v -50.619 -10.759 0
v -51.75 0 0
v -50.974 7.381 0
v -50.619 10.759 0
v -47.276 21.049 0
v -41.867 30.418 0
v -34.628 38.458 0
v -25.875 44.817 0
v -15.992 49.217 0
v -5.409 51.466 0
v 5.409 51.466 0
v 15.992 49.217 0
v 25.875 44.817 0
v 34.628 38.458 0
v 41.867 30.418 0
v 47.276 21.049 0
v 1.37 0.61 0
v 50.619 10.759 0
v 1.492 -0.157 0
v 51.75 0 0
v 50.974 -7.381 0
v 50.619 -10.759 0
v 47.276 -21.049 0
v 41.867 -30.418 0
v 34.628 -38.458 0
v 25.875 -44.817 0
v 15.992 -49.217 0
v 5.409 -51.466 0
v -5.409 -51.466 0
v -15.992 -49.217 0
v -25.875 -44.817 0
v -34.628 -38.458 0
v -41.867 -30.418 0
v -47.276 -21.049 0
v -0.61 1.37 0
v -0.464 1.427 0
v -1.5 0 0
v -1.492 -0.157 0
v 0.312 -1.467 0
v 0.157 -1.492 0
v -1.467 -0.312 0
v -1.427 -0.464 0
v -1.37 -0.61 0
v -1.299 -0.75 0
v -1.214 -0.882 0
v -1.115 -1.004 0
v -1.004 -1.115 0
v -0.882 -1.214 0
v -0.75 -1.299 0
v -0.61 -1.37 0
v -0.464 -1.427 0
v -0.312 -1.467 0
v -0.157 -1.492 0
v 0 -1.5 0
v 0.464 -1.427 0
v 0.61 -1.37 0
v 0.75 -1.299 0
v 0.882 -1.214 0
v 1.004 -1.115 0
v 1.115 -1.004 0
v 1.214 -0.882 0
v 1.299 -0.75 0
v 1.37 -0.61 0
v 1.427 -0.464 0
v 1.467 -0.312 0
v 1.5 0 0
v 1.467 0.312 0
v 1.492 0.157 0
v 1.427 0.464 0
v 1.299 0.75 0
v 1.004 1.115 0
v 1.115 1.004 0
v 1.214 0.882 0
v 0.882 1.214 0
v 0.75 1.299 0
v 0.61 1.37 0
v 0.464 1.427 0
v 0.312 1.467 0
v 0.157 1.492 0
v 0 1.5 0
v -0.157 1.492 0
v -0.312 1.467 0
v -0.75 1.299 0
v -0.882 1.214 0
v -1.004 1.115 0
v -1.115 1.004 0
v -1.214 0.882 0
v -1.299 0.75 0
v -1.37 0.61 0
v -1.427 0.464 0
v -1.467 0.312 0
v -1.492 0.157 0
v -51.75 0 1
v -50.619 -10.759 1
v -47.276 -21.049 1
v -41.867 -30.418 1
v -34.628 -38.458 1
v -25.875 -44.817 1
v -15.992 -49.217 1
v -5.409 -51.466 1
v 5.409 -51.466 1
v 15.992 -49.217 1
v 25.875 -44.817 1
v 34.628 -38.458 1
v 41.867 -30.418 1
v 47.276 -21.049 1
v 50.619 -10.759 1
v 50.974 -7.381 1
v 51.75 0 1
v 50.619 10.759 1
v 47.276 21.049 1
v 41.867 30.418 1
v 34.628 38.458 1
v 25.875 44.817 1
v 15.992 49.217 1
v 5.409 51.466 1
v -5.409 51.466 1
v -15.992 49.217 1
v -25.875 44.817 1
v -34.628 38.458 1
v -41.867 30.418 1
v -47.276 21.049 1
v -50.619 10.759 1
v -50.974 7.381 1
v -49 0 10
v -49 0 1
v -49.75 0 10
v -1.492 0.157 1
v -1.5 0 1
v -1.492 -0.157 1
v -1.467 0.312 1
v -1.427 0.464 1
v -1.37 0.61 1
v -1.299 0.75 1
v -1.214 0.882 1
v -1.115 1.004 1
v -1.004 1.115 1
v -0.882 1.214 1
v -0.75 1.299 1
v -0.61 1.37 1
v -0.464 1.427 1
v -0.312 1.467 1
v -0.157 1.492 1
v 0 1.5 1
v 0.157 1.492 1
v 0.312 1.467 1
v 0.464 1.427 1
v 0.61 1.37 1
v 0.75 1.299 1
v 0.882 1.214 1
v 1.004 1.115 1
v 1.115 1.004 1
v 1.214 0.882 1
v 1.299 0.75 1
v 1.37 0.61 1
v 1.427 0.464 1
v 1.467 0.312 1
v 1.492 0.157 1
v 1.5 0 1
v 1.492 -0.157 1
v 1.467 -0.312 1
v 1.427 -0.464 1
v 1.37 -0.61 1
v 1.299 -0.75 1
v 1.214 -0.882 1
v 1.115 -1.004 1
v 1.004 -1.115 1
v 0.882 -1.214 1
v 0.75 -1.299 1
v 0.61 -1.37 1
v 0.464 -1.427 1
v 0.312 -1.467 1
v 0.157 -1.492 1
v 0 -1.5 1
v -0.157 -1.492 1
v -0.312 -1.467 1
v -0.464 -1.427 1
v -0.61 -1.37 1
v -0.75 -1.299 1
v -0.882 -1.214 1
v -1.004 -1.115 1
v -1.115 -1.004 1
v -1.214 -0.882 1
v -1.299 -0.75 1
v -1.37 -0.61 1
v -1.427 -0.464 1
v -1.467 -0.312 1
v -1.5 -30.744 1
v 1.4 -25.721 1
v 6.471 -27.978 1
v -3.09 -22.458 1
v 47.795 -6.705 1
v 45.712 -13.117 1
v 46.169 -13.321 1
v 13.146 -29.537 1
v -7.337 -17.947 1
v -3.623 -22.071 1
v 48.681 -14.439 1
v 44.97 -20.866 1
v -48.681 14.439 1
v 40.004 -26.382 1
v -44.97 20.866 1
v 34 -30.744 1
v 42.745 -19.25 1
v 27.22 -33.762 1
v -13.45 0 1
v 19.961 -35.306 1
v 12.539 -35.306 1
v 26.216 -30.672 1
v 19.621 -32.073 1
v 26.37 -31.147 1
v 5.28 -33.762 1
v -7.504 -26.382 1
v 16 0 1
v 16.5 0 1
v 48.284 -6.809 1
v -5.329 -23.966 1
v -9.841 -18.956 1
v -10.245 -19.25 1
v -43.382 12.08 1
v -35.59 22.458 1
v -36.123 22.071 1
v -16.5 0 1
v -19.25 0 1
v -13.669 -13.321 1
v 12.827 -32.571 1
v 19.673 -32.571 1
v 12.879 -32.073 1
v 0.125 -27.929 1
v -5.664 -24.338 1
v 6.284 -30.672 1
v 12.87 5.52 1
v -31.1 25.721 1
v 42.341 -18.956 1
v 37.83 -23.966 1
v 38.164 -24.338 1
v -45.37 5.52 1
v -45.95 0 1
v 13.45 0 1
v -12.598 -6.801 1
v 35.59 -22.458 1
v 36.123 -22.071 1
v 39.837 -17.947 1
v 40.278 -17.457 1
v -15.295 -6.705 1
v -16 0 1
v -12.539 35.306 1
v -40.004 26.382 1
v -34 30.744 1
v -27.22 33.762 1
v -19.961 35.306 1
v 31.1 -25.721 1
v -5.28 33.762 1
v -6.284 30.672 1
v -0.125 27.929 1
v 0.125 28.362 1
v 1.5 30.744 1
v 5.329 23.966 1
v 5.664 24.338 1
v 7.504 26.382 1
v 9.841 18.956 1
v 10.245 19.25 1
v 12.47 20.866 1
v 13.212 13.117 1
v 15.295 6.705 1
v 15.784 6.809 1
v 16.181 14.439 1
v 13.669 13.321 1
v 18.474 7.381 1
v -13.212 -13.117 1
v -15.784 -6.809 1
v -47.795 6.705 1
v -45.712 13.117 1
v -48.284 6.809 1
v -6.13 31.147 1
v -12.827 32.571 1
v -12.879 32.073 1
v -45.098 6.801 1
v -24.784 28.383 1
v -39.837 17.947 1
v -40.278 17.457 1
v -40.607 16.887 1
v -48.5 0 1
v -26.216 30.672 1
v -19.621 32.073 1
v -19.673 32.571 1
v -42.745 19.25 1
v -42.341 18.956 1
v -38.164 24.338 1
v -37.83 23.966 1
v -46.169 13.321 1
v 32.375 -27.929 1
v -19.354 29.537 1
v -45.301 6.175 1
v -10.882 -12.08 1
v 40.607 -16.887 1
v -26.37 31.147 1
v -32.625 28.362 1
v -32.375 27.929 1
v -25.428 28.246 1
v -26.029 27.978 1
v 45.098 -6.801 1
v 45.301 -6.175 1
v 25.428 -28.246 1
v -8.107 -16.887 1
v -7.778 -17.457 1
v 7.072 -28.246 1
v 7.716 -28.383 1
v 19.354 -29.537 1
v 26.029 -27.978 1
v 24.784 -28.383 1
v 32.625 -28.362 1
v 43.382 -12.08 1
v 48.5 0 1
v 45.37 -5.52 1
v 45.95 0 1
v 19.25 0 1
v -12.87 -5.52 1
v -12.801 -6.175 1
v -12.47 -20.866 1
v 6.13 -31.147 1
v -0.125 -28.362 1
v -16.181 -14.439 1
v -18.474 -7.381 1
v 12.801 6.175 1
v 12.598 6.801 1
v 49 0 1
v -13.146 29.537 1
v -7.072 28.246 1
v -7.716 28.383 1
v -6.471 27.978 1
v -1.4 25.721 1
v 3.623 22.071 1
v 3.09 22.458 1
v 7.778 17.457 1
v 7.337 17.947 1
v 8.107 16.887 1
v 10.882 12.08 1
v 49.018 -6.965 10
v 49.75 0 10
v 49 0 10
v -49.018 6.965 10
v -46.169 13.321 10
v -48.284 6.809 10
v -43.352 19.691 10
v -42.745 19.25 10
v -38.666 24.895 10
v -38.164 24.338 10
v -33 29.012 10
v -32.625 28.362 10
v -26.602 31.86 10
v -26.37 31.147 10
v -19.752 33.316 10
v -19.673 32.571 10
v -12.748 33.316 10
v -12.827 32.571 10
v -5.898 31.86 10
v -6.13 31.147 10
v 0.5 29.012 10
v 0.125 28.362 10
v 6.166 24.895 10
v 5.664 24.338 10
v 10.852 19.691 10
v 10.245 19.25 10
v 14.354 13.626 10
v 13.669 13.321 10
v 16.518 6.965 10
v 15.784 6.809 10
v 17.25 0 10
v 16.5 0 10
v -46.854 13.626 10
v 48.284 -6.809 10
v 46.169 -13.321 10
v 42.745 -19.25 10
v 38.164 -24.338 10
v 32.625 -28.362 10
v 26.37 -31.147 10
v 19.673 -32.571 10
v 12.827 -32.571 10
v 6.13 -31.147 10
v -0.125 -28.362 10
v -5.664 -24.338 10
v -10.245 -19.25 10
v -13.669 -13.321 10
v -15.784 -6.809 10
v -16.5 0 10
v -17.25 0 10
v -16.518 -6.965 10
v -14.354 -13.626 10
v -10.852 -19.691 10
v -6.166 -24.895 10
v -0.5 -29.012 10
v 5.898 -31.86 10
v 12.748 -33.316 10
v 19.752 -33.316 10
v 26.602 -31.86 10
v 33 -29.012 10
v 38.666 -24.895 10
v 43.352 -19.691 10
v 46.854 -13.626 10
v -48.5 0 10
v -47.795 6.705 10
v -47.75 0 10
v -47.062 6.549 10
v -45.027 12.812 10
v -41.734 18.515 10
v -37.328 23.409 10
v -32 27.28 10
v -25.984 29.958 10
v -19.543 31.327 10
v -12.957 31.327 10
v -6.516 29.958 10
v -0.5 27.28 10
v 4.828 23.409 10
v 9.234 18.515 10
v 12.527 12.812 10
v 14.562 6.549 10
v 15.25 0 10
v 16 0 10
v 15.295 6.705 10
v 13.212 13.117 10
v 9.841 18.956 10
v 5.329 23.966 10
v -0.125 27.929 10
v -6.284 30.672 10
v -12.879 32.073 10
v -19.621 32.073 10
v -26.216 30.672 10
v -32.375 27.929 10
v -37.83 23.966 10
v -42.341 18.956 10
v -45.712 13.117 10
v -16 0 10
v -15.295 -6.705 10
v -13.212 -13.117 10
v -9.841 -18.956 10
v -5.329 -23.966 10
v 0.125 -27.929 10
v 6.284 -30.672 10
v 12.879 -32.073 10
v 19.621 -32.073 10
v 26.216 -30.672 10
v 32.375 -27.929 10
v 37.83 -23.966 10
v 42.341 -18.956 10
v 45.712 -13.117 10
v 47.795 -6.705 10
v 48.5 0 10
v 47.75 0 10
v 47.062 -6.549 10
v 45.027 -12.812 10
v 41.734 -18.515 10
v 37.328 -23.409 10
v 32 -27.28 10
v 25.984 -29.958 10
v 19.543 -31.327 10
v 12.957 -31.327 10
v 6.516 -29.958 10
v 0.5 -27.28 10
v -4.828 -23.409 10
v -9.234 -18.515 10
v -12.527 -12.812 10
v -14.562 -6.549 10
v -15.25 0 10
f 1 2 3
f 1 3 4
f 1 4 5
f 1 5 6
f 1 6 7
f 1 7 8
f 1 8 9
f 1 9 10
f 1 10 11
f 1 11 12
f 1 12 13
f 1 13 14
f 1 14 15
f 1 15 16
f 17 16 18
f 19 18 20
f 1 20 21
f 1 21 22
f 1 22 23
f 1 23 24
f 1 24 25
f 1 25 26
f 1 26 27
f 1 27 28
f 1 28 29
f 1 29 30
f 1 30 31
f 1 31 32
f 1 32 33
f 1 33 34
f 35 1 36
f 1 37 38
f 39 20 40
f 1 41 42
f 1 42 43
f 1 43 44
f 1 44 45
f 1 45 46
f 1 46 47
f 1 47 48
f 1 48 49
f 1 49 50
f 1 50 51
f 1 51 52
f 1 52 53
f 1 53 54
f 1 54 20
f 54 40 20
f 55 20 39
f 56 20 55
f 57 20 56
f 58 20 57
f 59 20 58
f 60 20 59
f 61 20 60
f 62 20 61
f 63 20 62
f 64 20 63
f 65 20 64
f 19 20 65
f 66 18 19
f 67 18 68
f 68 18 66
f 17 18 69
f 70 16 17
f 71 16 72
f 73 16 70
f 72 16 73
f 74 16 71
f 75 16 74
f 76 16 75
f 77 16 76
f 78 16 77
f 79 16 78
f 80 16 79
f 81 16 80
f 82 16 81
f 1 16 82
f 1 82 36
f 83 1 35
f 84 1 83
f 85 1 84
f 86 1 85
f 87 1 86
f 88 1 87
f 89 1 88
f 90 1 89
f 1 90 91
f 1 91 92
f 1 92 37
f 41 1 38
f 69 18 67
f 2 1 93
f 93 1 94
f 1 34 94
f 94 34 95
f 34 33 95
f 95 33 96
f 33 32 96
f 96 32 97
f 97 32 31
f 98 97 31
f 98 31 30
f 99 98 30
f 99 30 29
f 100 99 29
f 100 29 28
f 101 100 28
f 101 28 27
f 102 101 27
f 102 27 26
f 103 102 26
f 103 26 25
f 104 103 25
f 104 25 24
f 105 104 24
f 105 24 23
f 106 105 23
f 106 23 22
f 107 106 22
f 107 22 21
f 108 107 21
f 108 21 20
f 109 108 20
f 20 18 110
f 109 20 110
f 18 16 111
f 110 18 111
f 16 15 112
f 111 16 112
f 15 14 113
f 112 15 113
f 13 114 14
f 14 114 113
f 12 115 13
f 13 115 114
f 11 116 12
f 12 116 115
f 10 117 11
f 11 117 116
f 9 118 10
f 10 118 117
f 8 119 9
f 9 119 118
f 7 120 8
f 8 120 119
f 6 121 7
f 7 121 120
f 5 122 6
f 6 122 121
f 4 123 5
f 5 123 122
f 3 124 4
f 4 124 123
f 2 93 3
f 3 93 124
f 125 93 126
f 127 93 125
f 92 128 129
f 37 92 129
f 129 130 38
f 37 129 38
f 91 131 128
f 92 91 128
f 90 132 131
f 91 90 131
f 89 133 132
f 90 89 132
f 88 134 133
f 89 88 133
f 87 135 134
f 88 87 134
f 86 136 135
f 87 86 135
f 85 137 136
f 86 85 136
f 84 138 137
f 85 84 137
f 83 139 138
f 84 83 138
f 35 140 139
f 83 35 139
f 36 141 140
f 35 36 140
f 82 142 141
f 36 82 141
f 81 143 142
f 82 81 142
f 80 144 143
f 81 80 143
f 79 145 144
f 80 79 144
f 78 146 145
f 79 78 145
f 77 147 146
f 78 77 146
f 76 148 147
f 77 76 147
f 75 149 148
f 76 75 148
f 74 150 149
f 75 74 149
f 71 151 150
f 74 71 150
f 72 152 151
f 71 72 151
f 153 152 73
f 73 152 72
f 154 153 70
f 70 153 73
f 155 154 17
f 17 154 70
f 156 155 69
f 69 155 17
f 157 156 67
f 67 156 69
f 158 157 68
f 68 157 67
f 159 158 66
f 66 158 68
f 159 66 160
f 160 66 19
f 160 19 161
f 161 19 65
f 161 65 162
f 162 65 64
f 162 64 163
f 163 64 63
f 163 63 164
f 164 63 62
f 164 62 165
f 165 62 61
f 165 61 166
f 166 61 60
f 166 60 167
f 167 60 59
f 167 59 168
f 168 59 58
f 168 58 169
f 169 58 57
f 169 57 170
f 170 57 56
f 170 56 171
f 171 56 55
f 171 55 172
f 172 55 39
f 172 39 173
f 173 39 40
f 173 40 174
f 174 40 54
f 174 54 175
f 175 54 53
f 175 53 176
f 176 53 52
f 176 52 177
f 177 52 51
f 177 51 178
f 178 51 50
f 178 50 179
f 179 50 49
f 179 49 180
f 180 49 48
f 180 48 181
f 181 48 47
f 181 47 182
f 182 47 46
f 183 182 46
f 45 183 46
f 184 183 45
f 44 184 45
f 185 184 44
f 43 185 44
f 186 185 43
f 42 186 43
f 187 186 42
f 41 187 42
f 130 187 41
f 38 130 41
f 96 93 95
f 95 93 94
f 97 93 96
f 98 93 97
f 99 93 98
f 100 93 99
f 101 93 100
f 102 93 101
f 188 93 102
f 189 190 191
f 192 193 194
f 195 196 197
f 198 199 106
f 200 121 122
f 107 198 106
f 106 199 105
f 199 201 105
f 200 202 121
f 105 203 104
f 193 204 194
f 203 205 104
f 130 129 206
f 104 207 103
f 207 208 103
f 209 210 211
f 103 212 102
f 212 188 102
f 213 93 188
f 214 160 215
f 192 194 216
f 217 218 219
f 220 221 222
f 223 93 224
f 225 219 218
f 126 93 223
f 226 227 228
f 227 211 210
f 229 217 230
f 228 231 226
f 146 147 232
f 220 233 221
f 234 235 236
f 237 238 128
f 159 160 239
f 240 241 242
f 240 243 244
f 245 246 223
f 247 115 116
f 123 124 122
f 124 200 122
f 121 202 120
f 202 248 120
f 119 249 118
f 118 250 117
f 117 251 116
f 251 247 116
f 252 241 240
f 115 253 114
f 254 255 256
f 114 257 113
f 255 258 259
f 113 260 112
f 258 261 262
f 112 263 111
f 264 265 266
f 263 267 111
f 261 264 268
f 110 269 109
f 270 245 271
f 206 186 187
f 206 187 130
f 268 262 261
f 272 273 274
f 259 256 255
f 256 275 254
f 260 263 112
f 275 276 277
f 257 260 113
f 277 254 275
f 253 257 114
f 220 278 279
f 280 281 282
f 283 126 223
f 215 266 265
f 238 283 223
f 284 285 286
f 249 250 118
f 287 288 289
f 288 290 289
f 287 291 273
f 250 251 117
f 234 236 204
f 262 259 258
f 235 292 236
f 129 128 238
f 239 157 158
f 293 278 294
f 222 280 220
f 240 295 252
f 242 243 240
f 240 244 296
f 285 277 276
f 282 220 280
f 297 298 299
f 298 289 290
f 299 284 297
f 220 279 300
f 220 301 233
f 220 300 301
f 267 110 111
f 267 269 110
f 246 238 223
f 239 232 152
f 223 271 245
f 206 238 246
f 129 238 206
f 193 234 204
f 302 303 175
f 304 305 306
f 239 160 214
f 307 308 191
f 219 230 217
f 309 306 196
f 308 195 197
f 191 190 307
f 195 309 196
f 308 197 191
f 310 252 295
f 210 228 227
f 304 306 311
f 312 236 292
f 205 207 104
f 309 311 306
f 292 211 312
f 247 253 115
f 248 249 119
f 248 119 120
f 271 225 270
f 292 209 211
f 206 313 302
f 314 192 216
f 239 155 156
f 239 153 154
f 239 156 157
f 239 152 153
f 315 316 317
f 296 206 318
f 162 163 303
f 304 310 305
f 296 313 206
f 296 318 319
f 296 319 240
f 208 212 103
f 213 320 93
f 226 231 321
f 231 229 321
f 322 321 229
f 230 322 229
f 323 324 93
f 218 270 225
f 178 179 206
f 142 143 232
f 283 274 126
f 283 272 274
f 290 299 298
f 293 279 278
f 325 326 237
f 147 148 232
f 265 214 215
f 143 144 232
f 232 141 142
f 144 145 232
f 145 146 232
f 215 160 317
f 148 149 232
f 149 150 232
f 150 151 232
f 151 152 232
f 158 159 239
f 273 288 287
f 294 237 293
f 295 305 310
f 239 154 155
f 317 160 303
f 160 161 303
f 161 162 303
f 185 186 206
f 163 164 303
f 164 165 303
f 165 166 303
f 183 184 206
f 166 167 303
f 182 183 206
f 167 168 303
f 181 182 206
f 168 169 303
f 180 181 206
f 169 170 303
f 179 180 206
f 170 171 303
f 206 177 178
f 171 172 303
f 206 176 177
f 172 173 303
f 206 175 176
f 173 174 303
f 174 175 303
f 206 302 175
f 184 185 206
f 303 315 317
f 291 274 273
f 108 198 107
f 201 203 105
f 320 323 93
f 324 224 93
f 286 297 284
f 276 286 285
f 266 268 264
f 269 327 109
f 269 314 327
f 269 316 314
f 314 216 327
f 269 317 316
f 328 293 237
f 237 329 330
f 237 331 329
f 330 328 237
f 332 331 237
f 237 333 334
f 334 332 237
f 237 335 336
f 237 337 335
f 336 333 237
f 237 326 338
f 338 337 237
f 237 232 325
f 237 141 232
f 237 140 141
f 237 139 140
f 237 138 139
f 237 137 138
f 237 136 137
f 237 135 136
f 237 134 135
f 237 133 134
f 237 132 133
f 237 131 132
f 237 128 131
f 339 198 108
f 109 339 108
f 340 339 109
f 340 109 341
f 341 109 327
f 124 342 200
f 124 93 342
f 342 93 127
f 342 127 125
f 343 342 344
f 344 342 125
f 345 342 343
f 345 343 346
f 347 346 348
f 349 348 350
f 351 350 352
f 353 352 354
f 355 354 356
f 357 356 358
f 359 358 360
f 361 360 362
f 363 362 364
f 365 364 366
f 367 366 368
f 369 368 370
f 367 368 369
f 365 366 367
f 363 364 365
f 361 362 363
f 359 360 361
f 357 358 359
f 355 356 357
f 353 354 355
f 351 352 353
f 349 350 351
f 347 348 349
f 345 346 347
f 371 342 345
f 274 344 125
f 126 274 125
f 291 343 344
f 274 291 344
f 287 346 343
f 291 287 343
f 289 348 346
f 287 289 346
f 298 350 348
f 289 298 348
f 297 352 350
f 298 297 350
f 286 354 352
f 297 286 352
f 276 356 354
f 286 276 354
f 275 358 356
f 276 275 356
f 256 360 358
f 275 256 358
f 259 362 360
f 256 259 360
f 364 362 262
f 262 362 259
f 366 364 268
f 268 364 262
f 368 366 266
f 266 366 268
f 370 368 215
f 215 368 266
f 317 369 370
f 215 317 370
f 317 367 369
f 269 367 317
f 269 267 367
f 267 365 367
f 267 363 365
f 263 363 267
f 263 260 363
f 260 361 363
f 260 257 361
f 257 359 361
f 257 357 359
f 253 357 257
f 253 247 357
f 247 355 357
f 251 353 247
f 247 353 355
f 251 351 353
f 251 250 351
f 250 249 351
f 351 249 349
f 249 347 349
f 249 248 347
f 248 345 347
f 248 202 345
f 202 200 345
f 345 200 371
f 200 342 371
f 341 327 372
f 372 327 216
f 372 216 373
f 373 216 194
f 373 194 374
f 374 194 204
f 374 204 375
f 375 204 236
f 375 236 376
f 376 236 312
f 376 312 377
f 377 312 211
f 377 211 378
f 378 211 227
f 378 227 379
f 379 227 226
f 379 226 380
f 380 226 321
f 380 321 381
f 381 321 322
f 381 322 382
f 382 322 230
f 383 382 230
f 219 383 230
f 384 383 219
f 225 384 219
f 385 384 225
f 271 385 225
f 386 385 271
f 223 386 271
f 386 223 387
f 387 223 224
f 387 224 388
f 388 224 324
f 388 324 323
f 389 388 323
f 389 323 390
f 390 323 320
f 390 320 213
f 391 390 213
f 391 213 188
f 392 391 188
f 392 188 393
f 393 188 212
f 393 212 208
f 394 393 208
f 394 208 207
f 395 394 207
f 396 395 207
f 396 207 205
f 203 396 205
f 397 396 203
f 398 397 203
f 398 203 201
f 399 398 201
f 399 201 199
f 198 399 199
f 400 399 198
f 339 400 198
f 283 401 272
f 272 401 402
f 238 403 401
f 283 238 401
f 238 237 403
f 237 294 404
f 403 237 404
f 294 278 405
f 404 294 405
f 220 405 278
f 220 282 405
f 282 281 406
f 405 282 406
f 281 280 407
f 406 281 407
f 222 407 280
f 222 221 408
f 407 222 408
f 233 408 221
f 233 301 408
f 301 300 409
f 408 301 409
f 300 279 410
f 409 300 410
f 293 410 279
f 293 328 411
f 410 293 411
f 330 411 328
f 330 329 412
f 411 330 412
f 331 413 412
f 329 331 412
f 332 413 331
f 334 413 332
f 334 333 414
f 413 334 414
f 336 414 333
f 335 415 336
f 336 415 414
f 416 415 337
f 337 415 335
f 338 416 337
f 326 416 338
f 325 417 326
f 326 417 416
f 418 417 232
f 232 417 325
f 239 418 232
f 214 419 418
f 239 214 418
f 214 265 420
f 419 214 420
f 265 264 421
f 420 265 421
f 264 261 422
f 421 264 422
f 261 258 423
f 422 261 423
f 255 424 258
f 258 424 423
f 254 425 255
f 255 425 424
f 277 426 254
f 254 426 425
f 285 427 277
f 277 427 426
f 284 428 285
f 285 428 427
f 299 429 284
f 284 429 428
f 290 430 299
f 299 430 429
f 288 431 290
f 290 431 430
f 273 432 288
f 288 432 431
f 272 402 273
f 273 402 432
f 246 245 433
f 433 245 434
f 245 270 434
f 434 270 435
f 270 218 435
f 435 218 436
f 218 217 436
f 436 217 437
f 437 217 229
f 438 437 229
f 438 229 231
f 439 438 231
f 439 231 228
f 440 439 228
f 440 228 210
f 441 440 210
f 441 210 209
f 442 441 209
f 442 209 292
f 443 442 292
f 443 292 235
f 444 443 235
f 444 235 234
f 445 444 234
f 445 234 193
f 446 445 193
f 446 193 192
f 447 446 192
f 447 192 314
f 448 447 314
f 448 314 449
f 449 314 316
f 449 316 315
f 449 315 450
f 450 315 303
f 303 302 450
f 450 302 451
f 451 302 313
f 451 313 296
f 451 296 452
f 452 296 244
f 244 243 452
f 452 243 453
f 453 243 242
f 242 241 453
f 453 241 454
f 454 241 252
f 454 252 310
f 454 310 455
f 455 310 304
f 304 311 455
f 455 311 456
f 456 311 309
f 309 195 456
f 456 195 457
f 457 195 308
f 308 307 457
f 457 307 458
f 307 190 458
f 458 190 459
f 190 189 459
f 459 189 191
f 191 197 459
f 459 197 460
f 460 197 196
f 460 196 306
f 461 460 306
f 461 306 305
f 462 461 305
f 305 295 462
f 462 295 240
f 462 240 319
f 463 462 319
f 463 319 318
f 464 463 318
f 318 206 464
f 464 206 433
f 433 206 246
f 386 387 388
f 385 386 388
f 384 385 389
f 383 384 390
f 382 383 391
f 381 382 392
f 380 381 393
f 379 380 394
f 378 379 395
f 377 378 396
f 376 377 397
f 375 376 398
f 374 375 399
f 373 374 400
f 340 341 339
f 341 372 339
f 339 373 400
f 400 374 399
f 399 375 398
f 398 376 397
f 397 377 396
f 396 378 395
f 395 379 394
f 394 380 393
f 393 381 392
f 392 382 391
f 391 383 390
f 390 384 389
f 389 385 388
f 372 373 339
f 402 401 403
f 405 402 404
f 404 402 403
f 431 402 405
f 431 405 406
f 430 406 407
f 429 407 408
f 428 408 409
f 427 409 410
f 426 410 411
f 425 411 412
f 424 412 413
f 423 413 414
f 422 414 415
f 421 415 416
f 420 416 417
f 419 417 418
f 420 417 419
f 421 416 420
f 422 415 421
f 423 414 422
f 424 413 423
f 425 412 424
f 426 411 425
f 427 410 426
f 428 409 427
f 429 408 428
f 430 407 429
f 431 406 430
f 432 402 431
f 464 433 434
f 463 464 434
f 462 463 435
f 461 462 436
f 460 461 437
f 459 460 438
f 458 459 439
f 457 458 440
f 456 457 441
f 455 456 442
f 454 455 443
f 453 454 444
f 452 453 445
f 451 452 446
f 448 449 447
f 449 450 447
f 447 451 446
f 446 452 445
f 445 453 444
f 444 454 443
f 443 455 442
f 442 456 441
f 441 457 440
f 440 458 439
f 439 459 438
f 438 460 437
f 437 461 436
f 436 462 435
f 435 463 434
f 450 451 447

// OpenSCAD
SodaBottleOD = 65;
PlateOD = SodaBottleOD * 1.5 + 6 ; //80;

difference()
{
	cylinder(d=PlateOD, h=1);
	//center spindle
	cylinder(d=3, h=10, $fn = 60);
}

translate([SodaBottleOD/4,0,0]) bottleBracket();
translate([-SodaBottleOD/4,0,0]) rotate([0,0,180]) bottleBracket();



module bottleBracket()
{
	difference()
	{
		// outer edge
		hull()
		{
			cylinder(d=SodaBottleOD + 2, h=10);
			cylinder(d=SodaBottleOD + 6, h=1);
		}
		//inner edge
		hull()
		{
			cylinder(d=SodaBottleOD - 6, h=10);
			translate([0,0,10]) cylinder(d=SodaBottleOD - 2, h=1);
		}
		bottle();
		translate([-SodaBottleOD, 0, 0]) cube(SodaBottleOD*2, SodaBottleOD*2, 10);
		

	}
}

module bottle()
{
	difference()
	{
		cylinder(d=SodaBottleOD + .5, h=10);
		cylinder(d=SodaBottleOD - .5, h=10);
	}
}
